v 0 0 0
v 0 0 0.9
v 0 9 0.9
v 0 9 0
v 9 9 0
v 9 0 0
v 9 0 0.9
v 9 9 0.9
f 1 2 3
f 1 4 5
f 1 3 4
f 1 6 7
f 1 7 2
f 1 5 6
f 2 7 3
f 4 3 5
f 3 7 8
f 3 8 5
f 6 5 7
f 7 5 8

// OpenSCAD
/* Warning, this is a very basic generator with a lot of approximation 
input data : [QFN, R4X, 9x9x0.9mm, 64, , E, C04-00149E]
generated by com.zoubworld.electronics.cad.model3d.Basic
Date : Sun Feb 15 10:50:48 CET 2026
*/

//body
color("black")
translate([0,0,0])
cube([9.0,9.0,0.9], center=false);
